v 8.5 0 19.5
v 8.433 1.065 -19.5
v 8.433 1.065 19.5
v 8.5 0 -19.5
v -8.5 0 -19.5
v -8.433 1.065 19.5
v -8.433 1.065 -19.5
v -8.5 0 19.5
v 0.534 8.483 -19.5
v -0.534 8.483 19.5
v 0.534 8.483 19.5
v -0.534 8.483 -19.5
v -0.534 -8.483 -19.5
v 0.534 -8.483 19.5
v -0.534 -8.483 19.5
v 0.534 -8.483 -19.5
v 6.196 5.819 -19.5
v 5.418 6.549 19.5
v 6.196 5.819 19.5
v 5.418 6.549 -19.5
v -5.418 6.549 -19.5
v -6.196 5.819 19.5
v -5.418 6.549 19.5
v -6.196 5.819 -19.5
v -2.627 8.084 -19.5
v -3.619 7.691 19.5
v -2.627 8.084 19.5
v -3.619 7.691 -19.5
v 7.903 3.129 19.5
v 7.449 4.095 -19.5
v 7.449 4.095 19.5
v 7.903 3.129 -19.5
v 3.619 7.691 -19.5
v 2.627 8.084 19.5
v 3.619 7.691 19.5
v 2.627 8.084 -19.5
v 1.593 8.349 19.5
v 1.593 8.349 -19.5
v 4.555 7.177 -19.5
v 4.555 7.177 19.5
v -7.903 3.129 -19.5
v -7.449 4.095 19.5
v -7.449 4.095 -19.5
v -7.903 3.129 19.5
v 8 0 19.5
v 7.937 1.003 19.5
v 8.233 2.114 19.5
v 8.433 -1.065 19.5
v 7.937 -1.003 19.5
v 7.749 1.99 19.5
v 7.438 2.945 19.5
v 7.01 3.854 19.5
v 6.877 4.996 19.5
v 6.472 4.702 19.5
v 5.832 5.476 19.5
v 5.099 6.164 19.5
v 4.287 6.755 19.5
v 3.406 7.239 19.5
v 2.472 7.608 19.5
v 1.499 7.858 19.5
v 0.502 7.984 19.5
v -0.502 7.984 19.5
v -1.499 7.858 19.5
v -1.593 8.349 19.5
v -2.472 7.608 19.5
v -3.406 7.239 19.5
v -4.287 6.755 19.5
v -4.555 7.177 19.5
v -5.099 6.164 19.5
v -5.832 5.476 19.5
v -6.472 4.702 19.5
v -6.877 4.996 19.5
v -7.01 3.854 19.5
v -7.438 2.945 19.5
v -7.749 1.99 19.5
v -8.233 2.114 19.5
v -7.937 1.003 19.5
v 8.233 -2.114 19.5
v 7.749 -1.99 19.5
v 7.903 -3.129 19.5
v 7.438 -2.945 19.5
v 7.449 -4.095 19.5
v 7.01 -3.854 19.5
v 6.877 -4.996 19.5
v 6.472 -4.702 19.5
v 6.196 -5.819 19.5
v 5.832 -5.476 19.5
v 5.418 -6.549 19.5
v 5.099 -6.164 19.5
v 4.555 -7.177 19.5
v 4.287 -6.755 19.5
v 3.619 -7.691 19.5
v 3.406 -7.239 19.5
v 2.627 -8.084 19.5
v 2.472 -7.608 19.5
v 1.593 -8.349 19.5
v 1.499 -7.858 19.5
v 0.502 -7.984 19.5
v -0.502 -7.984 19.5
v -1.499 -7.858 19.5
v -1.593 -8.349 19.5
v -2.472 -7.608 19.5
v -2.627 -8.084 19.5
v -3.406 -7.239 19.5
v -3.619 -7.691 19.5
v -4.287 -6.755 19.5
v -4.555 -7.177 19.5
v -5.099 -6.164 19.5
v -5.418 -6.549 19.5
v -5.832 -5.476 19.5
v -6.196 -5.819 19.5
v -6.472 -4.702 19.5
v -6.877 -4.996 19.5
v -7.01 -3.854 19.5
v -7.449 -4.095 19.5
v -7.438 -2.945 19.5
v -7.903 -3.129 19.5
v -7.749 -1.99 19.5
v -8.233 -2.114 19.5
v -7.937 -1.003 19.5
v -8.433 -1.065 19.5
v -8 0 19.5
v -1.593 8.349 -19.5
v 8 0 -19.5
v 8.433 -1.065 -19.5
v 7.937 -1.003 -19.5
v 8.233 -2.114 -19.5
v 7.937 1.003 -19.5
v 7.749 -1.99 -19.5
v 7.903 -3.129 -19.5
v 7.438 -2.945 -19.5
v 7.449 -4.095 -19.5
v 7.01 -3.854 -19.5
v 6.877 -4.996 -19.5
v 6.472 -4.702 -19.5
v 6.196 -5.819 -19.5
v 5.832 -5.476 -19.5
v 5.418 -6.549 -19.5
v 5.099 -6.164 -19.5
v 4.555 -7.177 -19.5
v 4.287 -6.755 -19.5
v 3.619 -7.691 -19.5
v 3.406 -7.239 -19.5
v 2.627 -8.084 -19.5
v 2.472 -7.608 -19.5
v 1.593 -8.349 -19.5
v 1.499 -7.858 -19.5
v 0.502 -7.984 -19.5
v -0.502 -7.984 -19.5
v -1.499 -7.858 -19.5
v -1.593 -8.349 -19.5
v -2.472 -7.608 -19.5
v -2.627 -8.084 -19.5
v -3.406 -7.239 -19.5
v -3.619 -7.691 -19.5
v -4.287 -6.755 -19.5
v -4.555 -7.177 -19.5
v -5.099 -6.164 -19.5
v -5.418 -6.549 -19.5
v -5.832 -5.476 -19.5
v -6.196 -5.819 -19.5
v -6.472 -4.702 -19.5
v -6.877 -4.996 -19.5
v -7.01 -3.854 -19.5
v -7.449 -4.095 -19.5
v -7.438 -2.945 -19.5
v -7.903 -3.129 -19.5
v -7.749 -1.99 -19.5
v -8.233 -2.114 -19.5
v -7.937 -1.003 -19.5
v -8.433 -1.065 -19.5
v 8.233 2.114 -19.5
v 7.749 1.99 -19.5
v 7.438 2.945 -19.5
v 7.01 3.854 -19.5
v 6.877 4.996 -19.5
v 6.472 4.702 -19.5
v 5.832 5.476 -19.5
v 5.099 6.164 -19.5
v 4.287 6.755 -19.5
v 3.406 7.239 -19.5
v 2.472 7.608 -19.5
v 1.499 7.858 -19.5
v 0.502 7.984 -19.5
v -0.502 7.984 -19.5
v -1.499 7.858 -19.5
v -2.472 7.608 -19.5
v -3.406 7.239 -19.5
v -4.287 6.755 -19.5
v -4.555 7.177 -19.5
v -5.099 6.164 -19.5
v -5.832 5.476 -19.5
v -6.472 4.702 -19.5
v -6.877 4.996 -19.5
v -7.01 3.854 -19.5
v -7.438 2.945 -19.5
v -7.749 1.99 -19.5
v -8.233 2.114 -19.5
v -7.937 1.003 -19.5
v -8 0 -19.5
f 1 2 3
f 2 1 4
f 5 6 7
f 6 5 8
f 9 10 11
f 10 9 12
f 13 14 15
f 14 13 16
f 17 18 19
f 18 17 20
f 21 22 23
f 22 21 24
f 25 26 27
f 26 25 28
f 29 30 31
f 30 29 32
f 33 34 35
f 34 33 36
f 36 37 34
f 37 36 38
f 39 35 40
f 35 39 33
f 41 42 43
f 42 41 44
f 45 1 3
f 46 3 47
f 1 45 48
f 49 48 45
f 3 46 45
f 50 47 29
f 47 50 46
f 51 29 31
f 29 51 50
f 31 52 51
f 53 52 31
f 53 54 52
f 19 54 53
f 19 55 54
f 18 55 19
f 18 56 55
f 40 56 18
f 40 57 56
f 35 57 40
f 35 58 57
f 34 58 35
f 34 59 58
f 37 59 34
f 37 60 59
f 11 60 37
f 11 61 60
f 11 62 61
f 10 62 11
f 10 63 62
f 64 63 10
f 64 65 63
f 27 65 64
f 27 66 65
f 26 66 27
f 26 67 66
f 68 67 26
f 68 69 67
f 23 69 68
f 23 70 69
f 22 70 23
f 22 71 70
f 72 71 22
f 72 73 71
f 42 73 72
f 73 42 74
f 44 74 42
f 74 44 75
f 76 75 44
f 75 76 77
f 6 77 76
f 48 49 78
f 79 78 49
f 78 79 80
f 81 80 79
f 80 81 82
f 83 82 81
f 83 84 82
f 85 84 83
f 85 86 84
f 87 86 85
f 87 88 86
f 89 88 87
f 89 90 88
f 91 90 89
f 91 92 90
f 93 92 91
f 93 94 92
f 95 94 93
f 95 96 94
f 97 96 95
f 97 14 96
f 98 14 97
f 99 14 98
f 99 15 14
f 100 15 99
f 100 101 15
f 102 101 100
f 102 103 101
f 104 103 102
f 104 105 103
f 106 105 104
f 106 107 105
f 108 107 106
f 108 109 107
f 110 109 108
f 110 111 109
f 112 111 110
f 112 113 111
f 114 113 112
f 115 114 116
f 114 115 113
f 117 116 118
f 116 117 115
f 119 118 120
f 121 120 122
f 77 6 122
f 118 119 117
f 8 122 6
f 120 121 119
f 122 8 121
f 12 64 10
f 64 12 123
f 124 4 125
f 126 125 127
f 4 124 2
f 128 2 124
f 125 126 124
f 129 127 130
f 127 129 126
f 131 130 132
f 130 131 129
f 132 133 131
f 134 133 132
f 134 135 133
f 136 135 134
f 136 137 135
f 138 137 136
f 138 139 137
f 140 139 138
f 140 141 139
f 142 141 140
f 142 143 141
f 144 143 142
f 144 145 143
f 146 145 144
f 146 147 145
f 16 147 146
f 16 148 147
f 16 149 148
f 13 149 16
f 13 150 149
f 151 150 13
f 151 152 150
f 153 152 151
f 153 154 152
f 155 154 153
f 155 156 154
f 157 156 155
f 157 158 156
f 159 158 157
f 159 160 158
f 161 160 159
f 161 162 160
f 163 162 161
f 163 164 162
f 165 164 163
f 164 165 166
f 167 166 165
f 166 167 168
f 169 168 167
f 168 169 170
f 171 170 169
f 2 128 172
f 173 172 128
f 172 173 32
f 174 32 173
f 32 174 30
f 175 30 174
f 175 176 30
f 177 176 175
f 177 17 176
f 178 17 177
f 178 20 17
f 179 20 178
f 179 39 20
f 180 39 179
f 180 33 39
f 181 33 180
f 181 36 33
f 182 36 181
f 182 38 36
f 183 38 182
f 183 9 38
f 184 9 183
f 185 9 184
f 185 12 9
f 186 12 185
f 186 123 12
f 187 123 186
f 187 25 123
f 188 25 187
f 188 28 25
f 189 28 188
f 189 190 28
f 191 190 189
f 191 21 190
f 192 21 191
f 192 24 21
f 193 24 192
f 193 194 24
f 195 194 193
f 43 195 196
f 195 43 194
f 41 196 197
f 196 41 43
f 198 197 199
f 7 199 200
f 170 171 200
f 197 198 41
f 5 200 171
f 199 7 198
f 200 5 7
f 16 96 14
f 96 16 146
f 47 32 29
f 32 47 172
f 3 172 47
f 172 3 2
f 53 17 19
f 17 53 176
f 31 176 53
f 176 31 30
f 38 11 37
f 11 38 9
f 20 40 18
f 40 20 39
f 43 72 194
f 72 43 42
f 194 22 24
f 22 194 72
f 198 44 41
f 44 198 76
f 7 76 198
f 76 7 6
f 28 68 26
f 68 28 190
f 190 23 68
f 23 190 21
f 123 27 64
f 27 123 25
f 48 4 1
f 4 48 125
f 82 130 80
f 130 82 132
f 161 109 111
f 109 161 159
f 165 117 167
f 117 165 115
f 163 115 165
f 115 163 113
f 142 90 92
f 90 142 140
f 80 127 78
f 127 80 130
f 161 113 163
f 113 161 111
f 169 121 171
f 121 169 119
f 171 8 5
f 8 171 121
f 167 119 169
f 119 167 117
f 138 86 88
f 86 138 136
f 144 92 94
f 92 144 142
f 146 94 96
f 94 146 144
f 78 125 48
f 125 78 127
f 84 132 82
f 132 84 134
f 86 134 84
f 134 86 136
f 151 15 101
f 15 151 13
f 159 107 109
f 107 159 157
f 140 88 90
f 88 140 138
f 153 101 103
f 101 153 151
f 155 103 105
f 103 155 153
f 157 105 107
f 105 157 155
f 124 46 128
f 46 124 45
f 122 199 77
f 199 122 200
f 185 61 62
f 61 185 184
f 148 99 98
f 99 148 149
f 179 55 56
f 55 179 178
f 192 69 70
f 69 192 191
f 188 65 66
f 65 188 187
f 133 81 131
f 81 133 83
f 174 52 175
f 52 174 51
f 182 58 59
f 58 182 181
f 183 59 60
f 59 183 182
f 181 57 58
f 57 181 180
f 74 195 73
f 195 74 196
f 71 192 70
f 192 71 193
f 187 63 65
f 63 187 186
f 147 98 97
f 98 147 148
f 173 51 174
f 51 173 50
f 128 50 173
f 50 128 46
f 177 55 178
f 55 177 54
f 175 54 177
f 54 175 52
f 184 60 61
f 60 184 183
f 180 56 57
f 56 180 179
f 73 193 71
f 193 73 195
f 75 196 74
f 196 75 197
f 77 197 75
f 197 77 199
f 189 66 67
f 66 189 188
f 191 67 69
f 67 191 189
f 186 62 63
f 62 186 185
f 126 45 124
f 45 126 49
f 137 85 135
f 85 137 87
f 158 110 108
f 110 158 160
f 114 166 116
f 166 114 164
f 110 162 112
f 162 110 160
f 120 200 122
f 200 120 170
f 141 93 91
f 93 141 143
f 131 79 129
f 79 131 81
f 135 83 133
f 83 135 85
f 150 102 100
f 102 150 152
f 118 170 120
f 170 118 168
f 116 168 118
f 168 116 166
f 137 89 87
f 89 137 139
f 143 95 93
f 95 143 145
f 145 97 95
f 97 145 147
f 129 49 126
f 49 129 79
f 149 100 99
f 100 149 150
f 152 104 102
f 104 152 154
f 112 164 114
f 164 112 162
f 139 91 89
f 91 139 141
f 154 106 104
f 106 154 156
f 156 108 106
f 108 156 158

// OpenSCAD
$fn = 50;


difference() {
	union() {
		translate(v = [0, 0, -19.5000000000]) {
			cylinder(h = 39, r = 8.5000000000);
		}
	}
	union() {
		translate(v = [0, 0, -100.0000000000]) {
			cylinder(h = 200, r = 8);
		}
	}
}
